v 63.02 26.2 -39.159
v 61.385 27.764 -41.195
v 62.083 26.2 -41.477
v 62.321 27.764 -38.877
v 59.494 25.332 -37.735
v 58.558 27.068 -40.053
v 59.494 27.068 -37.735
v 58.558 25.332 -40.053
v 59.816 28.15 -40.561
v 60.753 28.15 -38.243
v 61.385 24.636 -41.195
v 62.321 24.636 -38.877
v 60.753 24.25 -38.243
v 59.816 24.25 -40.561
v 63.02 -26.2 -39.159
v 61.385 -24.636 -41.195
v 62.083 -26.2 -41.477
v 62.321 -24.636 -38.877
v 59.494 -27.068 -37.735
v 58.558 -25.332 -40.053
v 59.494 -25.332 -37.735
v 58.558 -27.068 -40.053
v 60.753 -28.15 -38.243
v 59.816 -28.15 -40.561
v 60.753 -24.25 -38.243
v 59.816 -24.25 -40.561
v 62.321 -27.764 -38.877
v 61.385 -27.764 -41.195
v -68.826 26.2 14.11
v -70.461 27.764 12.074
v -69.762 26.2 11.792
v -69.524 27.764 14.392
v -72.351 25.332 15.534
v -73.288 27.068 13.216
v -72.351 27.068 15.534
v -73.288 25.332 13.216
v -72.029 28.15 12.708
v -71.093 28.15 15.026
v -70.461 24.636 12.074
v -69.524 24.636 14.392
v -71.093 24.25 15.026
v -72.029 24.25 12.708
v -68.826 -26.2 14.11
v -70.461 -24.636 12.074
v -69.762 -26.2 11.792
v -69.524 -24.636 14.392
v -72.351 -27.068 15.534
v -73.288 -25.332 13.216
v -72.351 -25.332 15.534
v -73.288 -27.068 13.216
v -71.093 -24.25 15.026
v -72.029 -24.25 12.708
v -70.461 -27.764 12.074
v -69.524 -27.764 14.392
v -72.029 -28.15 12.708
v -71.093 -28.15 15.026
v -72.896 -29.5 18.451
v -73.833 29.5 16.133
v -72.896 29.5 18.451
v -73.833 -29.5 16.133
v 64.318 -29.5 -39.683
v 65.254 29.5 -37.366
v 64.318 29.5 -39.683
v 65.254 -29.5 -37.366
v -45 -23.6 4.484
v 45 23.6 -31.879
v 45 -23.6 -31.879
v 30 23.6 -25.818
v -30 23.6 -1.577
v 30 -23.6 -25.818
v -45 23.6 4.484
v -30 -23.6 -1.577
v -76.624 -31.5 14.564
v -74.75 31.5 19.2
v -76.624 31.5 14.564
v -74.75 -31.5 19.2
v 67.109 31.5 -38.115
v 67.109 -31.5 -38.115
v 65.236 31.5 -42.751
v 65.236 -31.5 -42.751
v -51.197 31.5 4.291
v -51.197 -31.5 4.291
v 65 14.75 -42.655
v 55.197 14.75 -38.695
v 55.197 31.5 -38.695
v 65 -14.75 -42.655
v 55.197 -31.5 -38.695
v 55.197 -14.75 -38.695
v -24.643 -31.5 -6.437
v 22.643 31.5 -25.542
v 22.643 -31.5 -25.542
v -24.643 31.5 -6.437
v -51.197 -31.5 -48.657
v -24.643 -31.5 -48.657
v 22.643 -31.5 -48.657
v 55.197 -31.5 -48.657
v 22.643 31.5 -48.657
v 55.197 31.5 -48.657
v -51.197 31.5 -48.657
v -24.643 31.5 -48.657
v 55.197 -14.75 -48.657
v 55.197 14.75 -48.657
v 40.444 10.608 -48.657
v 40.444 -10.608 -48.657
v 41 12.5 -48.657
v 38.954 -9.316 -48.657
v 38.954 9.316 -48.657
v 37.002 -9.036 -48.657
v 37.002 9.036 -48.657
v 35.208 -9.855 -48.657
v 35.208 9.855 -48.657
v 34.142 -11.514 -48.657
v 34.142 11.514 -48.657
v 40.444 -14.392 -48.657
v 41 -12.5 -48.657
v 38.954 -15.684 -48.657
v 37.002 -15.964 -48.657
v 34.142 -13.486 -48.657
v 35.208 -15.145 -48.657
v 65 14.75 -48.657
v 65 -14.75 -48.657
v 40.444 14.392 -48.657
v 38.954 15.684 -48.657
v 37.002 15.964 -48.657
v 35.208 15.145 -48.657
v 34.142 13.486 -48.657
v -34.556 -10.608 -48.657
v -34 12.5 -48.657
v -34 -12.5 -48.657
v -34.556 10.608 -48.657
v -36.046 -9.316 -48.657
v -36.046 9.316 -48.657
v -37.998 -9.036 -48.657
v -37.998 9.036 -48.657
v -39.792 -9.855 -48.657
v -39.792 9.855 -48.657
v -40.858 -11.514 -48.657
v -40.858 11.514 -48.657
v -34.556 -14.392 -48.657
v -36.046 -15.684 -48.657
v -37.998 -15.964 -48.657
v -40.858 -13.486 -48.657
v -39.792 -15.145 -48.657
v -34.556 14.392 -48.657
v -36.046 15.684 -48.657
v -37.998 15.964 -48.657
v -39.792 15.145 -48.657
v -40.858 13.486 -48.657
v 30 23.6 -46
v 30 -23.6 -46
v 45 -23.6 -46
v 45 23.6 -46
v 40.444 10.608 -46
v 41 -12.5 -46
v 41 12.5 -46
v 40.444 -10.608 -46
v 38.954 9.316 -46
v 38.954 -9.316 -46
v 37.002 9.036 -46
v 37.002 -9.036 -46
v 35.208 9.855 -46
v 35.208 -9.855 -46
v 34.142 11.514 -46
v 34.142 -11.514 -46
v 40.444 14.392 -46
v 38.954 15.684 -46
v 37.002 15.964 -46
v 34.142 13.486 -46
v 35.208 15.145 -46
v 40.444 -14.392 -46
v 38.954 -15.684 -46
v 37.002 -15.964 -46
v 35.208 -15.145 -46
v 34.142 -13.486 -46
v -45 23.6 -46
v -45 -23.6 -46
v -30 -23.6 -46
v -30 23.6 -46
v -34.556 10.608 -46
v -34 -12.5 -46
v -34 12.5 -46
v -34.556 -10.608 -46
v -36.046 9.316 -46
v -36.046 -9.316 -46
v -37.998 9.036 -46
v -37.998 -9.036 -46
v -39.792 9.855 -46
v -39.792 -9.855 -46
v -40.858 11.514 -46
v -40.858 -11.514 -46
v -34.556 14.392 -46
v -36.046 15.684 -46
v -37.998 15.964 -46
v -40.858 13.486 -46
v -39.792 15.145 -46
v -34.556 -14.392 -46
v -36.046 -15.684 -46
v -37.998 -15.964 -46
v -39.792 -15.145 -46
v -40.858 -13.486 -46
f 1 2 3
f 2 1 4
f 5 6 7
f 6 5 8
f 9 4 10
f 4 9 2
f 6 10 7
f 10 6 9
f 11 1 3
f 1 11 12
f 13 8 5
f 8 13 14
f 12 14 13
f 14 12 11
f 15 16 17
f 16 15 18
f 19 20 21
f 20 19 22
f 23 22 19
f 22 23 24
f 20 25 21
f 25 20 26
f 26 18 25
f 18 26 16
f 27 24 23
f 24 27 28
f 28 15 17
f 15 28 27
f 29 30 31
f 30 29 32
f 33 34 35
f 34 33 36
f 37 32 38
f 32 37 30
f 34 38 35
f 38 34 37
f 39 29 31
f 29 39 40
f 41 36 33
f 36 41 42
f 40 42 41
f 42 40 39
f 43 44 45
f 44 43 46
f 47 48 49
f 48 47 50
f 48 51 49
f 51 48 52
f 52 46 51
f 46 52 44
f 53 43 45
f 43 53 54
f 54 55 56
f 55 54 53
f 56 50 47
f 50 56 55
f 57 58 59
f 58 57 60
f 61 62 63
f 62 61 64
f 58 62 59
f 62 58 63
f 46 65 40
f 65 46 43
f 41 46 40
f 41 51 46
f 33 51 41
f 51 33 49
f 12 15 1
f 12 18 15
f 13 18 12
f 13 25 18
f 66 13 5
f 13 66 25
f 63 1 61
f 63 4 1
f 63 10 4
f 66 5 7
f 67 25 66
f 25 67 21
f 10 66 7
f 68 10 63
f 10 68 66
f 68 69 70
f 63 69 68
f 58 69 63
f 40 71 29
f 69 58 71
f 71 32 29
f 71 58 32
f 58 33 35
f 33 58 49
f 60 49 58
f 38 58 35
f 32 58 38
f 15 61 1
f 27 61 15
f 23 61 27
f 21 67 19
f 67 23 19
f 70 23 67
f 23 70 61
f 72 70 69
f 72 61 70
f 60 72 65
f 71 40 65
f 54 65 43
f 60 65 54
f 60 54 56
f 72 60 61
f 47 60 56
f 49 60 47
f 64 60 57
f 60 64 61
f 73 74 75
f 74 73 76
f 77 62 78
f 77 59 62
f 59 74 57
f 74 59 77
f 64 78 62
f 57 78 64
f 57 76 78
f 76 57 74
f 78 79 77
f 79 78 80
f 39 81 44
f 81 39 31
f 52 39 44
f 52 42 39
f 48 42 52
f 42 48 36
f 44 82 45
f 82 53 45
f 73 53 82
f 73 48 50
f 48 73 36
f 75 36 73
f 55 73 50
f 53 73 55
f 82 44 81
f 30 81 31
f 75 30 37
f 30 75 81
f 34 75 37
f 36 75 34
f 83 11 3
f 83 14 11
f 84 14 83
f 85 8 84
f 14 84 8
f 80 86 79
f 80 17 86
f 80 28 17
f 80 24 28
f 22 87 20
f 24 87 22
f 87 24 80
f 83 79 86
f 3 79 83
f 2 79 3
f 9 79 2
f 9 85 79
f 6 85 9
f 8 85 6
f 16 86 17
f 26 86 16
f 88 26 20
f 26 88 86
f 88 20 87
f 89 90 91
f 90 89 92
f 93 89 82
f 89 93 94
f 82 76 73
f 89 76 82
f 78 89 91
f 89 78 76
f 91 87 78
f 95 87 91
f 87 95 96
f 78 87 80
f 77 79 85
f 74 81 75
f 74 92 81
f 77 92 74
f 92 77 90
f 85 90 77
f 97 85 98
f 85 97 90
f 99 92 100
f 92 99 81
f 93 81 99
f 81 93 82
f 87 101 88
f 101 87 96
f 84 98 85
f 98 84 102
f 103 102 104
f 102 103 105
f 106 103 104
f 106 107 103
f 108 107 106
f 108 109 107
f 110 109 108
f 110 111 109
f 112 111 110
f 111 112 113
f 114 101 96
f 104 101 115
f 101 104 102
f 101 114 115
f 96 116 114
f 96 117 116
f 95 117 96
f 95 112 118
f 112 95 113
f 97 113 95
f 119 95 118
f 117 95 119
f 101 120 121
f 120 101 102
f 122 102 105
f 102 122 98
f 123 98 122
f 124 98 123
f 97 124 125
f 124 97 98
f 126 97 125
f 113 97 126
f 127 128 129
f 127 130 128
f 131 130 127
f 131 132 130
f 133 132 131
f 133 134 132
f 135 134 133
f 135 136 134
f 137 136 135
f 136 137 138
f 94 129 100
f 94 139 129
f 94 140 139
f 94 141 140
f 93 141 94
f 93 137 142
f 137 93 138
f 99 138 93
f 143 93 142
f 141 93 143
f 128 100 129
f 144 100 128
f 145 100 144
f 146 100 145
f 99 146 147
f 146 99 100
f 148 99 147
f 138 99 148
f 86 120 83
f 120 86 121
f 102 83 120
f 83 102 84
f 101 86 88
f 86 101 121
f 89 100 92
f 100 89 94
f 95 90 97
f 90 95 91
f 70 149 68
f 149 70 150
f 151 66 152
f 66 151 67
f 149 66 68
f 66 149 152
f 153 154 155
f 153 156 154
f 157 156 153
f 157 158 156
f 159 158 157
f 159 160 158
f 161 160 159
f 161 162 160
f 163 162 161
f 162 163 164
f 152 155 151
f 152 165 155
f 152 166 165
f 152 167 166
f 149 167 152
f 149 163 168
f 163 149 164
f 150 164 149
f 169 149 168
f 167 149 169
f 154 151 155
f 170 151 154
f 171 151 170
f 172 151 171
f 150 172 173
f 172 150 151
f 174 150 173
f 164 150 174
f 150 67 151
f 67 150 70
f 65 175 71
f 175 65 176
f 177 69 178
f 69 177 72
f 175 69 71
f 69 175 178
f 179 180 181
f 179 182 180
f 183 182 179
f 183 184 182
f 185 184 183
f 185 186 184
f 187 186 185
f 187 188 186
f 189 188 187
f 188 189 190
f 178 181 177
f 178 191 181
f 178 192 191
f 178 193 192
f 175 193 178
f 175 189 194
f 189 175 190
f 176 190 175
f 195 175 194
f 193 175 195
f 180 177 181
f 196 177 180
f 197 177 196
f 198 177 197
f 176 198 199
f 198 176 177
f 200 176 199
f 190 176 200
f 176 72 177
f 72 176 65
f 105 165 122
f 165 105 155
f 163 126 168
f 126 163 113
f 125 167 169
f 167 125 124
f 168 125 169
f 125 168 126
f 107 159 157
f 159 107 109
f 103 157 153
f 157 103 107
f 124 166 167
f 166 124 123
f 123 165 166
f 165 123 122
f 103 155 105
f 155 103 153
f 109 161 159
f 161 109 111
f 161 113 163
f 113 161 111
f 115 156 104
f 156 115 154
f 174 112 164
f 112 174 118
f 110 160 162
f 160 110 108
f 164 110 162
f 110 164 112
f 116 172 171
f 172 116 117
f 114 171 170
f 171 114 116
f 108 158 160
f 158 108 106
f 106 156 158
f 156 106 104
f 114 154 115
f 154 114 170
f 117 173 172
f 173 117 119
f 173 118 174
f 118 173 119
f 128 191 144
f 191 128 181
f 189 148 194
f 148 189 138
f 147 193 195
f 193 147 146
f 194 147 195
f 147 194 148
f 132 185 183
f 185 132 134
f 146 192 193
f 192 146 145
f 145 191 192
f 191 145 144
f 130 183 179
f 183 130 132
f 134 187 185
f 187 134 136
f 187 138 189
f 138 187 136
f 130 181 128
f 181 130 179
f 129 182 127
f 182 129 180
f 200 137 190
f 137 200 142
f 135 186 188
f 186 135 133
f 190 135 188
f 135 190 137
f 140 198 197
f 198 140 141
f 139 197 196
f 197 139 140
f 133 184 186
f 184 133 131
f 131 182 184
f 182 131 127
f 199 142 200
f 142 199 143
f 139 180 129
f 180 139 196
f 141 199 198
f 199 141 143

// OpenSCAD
width = 59;
height = 25.4;
length = 149;
thick = 2.0;

module Screws()
{
    h = 50;
    translate([142.2/2, 52.4/2, 0])
    cylinder(h = h, d = 4, center = true);

    translate([142.2/2, -52.4/2, 0])
    cylinder(h = h, d = 4, center = true);

    translate([-142.2/2, 52.4/2, 0])
    cylinder(h = h, d = 4, center = true);

    translate([-142.2/2, -52.4/2, 0])
    cylinder(h = h, d = 4, center = true);
}
module Device()
{
    difference()
    {
        cube([length, width, height], center = true);
        
        Screws();
    }  
}

module Base()
{
    difference()
    {
        union()
        {
            rotate([0, 22, 0])
            {
                difference()
                {
                    translate([0, 0, -25.4/2])
                    cube([length + 2*thick, width + 2*thick, 5], center = true);
                    
                    Device();
                    Screws();
                }
            }

            translate([-3, 0, -20])
            {
                difference()
                {
                    h = length + 2*thick;
                    z = h*sin(22);
                    x = h*cos(22);

                    translate([5, 0, 0])
                    union()
                    {
                        cube([x*0.75, width + 2*thick, z], center = true);
                        translate([53, 0, 0])
                        cube([20, width/2, z], center = true);
                    }
             
                    translate([0, 0, 36])
                    rotate([0, 22, 0])
                    cube([x*2, width*2, z], center = true);
                    
                    translate([2, 0, 0])
                    cube([x/3, width*2, z*1.1], center = true);
                }
            }
        }
    
        x = (25/2)*3;
        translate([x, 0, -6])
        cube([15, width*0.8, 80], center = true);
        
        translate([-x, 0, -6])
        cube([15, width*0.8, 80], center = true);
        
        translate([x, 25*0.5, -60])
        cylinder(d = 7, h = 20);
        
        translate([x, -25*0.5, -60])
        cylinder(d = 7, h = 20);
        
        translate([-x, 25*0.5, -60])
        cylinder(d = 7, h = 20);
        
        translate([-x, -25*0.5, -60])
        cylinder(d = 7, h = 20);
    }
}

Base();
